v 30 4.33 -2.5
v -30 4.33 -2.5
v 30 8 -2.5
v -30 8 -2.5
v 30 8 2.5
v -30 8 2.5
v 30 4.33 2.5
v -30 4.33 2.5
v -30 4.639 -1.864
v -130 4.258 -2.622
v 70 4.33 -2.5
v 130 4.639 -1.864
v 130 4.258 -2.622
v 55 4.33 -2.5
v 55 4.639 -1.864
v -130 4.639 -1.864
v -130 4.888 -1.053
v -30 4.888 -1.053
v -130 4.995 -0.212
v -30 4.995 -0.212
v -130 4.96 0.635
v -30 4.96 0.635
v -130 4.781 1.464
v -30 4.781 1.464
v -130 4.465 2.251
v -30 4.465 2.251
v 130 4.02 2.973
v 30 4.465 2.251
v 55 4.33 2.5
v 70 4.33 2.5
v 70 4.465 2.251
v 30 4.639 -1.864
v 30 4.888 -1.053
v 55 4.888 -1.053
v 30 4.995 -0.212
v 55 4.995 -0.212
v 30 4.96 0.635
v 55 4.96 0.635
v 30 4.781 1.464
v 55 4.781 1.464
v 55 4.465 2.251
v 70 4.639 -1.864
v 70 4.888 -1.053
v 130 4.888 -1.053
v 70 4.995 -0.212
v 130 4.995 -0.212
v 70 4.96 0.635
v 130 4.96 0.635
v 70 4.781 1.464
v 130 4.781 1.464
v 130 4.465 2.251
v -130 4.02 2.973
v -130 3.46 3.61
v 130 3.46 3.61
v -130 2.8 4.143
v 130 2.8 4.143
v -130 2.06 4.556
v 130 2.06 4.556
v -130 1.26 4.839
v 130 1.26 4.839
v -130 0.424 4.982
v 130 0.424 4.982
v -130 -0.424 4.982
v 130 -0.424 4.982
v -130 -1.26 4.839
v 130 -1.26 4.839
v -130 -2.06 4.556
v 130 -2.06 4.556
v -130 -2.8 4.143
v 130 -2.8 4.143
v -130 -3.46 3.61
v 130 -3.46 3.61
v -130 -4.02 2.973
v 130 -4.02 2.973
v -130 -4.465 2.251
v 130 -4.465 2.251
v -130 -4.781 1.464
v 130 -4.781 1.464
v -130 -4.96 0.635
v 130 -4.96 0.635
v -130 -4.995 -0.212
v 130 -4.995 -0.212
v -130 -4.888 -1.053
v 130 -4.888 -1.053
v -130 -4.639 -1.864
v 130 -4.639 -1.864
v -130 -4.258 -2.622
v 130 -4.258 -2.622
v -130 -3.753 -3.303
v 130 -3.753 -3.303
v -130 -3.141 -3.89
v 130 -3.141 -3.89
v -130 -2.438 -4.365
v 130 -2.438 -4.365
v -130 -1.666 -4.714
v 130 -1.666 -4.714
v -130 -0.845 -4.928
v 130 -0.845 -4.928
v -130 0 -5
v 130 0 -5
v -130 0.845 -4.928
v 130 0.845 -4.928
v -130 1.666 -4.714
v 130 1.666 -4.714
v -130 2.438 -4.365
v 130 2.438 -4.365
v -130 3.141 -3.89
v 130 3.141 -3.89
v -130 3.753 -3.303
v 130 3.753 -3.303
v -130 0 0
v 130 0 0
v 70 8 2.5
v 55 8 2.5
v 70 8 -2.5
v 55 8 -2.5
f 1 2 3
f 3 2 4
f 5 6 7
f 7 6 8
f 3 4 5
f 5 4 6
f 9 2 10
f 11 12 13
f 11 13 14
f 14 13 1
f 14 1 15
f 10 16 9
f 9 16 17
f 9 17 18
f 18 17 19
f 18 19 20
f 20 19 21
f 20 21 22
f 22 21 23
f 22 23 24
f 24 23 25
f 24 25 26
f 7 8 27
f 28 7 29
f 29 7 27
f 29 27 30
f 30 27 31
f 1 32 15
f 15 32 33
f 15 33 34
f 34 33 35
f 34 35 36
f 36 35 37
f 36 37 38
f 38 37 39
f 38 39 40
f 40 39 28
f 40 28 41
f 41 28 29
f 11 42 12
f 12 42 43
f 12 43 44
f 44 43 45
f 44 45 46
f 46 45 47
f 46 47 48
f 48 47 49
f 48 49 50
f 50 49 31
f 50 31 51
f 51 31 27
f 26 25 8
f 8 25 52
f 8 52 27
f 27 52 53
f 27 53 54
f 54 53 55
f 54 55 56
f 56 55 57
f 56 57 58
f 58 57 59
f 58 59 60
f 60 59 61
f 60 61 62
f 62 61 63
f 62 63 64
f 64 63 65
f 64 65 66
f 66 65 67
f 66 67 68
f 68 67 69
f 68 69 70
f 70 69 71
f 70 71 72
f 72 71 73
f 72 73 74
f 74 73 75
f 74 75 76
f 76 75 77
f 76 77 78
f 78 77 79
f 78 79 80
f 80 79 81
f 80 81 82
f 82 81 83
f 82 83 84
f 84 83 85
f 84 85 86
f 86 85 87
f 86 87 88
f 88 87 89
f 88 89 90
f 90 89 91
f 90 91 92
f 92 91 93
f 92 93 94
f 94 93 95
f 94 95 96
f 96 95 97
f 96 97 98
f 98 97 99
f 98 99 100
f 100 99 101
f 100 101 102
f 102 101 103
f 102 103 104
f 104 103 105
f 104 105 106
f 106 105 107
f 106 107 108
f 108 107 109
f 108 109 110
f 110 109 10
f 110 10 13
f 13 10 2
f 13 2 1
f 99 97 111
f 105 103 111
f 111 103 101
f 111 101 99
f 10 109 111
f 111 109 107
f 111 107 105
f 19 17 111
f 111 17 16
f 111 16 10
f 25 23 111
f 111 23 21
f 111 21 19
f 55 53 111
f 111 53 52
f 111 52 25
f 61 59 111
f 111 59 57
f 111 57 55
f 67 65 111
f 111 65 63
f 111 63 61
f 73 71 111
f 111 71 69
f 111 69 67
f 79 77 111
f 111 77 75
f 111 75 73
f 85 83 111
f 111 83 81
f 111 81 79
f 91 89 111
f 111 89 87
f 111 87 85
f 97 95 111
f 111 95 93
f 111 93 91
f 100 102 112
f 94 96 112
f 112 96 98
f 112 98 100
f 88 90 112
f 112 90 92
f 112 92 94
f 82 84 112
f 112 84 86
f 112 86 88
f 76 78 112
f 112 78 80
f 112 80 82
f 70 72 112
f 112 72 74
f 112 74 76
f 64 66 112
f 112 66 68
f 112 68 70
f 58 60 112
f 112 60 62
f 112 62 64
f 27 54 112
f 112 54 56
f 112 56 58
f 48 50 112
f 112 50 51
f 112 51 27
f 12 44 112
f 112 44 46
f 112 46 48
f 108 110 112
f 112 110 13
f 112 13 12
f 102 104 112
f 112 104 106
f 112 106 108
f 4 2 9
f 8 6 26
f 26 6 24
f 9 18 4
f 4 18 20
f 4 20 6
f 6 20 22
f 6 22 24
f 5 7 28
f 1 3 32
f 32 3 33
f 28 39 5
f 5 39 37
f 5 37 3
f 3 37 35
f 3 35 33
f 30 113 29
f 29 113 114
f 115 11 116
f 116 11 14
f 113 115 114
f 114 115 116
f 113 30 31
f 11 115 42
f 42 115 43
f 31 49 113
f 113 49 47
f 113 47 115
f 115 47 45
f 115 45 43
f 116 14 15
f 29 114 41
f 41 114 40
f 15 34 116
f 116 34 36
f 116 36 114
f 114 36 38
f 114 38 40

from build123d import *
from build123d.topology import SkipClean

# Parameters (mm, degrees)
SHAFT_DEPTH                     = 130
SHAFT_DEPTH_BACK                = 130
SKETCH2_R                       = 5
SHAFT_KEY_FOR_BICEPS_DEPTH      = 130
SHAFT_KEY_FOR_BICEPS_DEPTH_BACK = 30
SKETCH3_W                       = 5
SKETCH3_H                       = 8
CUT_EXTRUDE1_START              = -75
CUT_EXTRUDE1_DEPTH              = 75
CUT_EXTRUDE2_START              = -25
CUT_EXTRUDE2_DEPTH              = 25
BOSS_EXTRUDE1_DEPTH             = 15


with BuildPart() as part:
    # Sketch2 → Shaft (new, two sides: drawn at the far end of the back side and taken through both)
    with BuildSketch(Plane(origin=(0, 0, 0), x_dir=(0, 0, -1), z_dir=(1, 0, 0)).offset(-SHAFT_DEPTH_BACK)):
        Circle(SKETCH2_R)
    extrude(amount=SHAFT_DEPTH + SHAFT_DEPTH_BACK)

    # Sketch3 → Shaft Key for Biceps (add, two sides: drawn at the far end of the back side and taken through both)
    with BuildSketch(Plane(origin=(0, 0, 0), x_dir=(0, 0, -1), z_dir=(1, 0, 0)).offset(-SHAFT_KEY_FOR_BICEPS_DEPTH_BACK)):
        with Locations((0, 4)):
            Rectangle(SKETCH3_W, SKETCH3_H)
    extrude(amount=SHAFT_KEY_FOR_BICEPS_DEPTH + SHAFT_KEY_FOR_BICEPS_DEPTH_BACK)

    # Sketch5 → Cut-Extrude1 (cut)
    with BuildSketch(Plane(origin=(130, 0, 0), x_dir=(0, 0, -1), z_dir=(1, 0, 0)).offset(CUT_EXTRUDE1_START)):
        with BuildLine():
            Line((-2.5, 4.330127019), (-2.5, 8))
            Line((-2.5, 8), (2.5, 8))
            Line((2.5, 8), (2.5, 4.330127019))
            ThreePointArc((2.5, 4.330127019), (0, 5), (-2.5, 4.330127019))
        make_face()
    extrude(amount=CUT_EXTRUDE1_DEPTH, mode=Mode.SUBTRACT)

    # Sketch9 → Cut-Extrude2 (cut)
    with SkipClean():  # the faces are left unmerged after this step: merging them gives an invalid solid
        with BuildSketch(Plane(origin=(55, 0, 0), x_dir=(0, 0, -1), z_dir=(1, 0, 0)).offset(CUT_EXTRUDE2_START)):
            with BuildLine():
                Line((2.5, 4.330127019), (2.5, 8))
                Line((2.5, 8), (-2.5, 8))
                Line((-2.5, 8), (-2.5, 4.330127019))
                ThreePointArc((-2.5, 4.330127019), (0, 5), (2.5, 4.330127019))
            make_face()
        extrude(amount=CUT_EXTRUDE2_DEPTH, mode=Mode.SUBTRACT)

    # Sketch10 → Boss-Extrude1 (add)
    with SkipClean():  # the faces are left unmerged after this step: merging them gives an invalid solid
        with BuildSketch(Plane(origin=(55, 0, 0), x_dir=(0, 0, -1), z_dir=(1, 0, 0))):
            with BuildLine():
                Line((-2.5, 8), (-2.5, 4.330127019))
                ThreePointArc((-2.5, 4.330127019), (0, 5), (2.5, 4.330127019))
                Line((2.5, 4.330127019), (2.5, 8))
                Line((2.5, 8), (-2.5, 8))
            make_face()
        extrude(amount=BOSS_EXTRUDE1_DEPTH)


solid = part.part
